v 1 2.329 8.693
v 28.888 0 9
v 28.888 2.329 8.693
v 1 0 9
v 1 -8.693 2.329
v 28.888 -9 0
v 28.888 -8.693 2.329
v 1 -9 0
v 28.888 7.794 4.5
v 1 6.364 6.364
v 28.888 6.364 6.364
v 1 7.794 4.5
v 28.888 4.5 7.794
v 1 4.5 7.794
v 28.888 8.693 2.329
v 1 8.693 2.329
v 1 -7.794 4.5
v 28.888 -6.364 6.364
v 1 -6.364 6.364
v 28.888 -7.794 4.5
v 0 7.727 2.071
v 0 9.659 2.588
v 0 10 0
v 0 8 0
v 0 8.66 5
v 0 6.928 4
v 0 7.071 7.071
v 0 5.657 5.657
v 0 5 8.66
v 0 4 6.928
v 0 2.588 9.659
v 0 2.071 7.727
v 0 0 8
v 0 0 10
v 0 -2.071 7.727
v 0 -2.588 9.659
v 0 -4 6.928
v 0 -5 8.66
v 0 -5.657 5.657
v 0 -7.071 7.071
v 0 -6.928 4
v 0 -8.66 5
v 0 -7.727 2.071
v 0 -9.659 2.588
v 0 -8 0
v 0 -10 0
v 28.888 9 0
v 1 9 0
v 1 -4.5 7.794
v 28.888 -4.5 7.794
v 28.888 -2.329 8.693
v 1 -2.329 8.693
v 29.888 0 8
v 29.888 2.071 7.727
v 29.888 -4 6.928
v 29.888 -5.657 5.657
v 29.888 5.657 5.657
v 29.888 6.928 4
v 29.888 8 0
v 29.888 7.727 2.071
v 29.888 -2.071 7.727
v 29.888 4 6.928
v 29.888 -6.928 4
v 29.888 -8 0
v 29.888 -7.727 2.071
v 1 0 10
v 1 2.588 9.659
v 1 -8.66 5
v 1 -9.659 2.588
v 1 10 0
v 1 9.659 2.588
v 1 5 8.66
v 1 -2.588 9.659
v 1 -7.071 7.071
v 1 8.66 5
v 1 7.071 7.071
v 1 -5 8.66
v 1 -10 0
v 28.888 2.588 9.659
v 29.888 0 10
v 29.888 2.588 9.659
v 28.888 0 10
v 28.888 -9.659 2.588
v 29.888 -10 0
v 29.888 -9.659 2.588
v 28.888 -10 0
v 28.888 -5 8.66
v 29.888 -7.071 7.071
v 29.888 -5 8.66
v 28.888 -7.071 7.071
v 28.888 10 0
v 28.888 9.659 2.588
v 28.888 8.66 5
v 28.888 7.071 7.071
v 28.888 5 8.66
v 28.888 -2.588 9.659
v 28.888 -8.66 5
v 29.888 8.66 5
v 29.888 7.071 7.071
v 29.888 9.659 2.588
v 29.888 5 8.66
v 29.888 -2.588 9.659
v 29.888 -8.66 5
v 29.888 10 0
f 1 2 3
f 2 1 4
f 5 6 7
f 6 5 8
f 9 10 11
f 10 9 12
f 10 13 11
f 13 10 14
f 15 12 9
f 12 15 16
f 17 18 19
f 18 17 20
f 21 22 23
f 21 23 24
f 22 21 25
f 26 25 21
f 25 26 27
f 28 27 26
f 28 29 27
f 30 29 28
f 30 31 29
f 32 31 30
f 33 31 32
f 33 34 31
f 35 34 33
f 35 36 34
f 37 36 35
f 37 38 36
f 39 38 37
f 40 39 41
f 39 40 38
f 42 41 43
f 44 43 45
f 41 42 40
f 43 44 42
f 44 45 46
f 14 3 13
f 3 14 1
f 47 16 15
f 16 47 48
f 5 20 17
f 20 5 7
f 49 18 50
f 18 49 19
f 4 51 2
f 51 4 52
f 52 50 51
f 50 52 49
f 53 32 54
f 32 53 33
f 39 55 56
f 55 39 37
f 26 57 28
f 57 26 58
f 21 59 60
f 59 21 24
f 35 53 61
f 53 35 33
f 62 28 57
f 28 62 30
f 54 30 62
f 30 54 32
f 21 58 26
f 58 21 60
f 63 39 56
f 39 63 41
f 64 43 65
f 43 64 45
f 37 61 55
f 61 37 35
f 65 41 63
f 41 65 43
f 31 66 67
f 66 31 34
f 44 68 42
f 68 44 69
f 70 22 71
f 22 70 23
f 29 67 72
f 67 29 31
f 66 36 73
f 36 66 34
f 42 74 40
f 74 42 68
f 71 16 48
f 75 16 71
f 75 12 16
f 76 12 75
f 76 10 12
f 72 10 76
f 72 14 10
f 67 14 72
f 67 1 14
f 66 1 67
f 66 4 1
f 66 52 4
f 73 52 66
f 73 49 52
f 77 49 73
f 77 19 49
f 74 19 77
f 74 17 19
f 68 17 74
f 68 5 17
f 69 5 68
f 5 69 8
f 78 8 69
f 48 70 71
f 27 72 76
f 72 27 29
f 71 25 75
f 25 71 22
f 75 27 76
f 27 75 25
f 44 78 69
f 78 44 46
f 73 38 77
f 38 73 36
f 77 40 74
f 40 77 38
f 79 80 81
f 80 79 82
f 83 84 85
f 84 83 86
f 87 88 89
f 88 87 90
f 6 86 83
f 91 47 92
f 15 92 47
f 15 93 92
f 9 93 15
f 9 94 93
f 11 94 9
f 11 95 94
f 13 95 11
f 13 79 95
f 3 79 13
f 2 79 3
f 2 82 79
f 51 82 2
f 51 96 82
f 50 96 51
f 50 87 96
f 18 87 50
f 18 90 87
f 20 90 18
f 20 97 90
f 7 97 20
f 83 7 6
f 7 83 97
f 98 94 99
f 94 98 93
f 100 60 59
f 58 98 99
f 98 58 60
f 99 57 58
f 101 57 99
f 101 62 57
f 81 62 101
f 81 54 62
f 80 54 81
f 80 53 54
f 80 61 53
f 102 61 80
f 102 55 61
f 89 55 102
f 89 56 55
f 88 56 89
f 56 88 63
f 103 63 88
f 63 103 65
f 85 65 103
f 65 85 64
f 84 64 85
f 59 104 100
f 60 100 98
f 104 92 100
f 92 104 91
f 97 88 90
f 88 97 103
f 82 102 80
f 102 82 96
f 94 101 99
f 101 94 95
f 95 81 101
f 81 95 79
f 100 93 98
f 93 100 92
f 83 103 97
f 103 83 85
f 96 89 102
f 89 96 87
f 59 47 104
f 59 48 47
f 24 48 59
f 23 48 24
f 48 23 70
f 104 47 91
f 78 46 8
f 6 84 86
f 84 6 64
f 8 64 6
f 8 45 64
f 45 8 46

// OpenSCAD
// file: ../build_environments.scad
// build_environments.scad: modules to build level sections
//

module pool(diameter=10.0, wall_height=2.0, step_width=3.0, connections=[])
{
    difference() {
        union() {
        difference() {
            cylinder(h=0.5,r1=diameter+step_width,r2=diameter+step_width,$fn=48);
            translate([0,0,-0.1])
                cylinder(h=0.7,r1=diameter,r2=diameter,$fn=48);
        }
        difference() {
            cylinder(h=wall_height,r1=diameter+step_width+1.0,r2=diameter+step_width+1.0,$fn=48);
            translate([0,0,-0.1])
                cylinder(h=wall_height+0.2,r1=diameter+step_width,r2=diameter+step_width,$fn=48);
        }
        }
    
        for (c = connections)
        {
            rotate([0,90,0]) {
                angle = atan2(c[1],c[0]);
                rotate([-angle,0,0]) {
                    cylinder(h=diameter+5.0,r1=c[2],r2=c[2],$fn=48);
                }
            }
        }
    }
}

module straight(length=10.0, width=2.0, dy1=0.0, dy2=0.0, dz=0.0)
{
    dims = [0, 0, 0, 0, 0, (dz/length)];
    matrix = [
        [ 1, dims[0], dims[1], 0 ],
        [ dims[2], 1, dims[4], 0 ],
        [ dims[5], dims[3], 1, 0 ],
        [ 0, 0, 0, 1 ]
    ];
    multmatrix(matrix)
    difference() {
        translate([dy1,0,0])
        union() {
            rotate([0,90,0]) {
                difference() {
                    cylinder(h=(length-dy1-dy2),r1=width+1.0,r2=width+1.0,$fn=24);
                    translate([0,0,-0.1])
                        cylinder(h=(length-dy1-dy2+0.2),r1=width,r2=width,$fn=24);
                }
                difference() {
                    cylinder(h=1.0,r1=width+2.0,r2=width+2.0,$fn=24);
                    translate([0,0,-0.1])
                        cylinder(h=1.2,r1=width,r2=width,$fn=24);
                }
                translate([0,0,(length-dy1-dy2)-1.0]) {
                    difference() {
                        cylinder(h=1.0,r1=width+2.0,r2=width+2.0,$fn=24);
                        translate([0,0,-0.1])
                            cylinder(h=1.2,r1=width,r2=width,$fn=24);
                    }
                }
            }
        }
        translate([0,0,-(2*width+4.0)/2])
            cube([3*length,3*length,2*width+4.0],center=true);
    }
}

module curve(p0=[0,0], center=[0,0], dir=1, angle=0.0, width=2.0)
{
    radius = sqrt((p0[0]-center[0])*(p0[0]-center[0]) + (p0[1]-center[1])*(p0[1]-center[1]));
    if (dir == 0) {
        difference() {
            rotate([0,0,-90])
            difference() {
                rotate_extrude(angle = angle, convexity = 10, $fn=32)
                    translate([radius, 0, 0])
                        circle(r = width+1.0,$fn=24);
                rotate([0,0,-1.0])
                    rotate_extrude(angle = angle+2.0, convexity = 10, $fn=32)
                        translate([radius, 0, 0])
                            circle(r = width,$fn=24);
            }
            translate([0,0,-(2*width+4.0)/2])
                cube([5*radius,5*radius,2*width+4.0],center=true);
        }
    }
    else {
        difference() {
            rotate([0,0,90])
            difference() {
                rotate_extrude(angle = -angle, convexity = 10, $fn=32)
                    translate([radius, 0, 0])
                        circle(r = width+1.0,$fn=24);
                rotate([0,0,1.0])
                    rotate_extrude(angle = -angle-2.0, convexity = 10, $fn=32)
                        translate([radius, 0, 0])
                            circle(r = width,$fn=24);
            }
            translate([0,0,-(2*width+4.0)/2])
                cube([5*radius,5*radius,2*width+4.0],center=true);
        }
    }

}

// test pool
//pool(diameter=12.0000, wall_height=3.0000, step_width=3.0000, connections=[[0.0000,-26.0000,2.0000], [23.6074,0.0000,2.0000]]);

// test straight, slope
//straight(length=26.0000, width=2.0000, dy1=11.8322, dy2=6.7082, dz=0.0000);
//straight(length=29.1549, width=12.0000, dy1=0.0000, dy2=0.0000, dz=-15.0000);

// test curve
//curve(p0=[23.6074, 0.0000], center=[23.6074, 5.0000], dir=0, angle=60.1011, width=2.0000);
//curve(p0=[33.6426, 12.4219], center=[37.9771, 9.9295], dir=1, angle=120.4627, width=2.0000);
// main file
use <../build_environments.scad>;
straight(length=29.8878, width=8.0000, dy1=0.0000, dy2=0.0000, dz=0.0000);
